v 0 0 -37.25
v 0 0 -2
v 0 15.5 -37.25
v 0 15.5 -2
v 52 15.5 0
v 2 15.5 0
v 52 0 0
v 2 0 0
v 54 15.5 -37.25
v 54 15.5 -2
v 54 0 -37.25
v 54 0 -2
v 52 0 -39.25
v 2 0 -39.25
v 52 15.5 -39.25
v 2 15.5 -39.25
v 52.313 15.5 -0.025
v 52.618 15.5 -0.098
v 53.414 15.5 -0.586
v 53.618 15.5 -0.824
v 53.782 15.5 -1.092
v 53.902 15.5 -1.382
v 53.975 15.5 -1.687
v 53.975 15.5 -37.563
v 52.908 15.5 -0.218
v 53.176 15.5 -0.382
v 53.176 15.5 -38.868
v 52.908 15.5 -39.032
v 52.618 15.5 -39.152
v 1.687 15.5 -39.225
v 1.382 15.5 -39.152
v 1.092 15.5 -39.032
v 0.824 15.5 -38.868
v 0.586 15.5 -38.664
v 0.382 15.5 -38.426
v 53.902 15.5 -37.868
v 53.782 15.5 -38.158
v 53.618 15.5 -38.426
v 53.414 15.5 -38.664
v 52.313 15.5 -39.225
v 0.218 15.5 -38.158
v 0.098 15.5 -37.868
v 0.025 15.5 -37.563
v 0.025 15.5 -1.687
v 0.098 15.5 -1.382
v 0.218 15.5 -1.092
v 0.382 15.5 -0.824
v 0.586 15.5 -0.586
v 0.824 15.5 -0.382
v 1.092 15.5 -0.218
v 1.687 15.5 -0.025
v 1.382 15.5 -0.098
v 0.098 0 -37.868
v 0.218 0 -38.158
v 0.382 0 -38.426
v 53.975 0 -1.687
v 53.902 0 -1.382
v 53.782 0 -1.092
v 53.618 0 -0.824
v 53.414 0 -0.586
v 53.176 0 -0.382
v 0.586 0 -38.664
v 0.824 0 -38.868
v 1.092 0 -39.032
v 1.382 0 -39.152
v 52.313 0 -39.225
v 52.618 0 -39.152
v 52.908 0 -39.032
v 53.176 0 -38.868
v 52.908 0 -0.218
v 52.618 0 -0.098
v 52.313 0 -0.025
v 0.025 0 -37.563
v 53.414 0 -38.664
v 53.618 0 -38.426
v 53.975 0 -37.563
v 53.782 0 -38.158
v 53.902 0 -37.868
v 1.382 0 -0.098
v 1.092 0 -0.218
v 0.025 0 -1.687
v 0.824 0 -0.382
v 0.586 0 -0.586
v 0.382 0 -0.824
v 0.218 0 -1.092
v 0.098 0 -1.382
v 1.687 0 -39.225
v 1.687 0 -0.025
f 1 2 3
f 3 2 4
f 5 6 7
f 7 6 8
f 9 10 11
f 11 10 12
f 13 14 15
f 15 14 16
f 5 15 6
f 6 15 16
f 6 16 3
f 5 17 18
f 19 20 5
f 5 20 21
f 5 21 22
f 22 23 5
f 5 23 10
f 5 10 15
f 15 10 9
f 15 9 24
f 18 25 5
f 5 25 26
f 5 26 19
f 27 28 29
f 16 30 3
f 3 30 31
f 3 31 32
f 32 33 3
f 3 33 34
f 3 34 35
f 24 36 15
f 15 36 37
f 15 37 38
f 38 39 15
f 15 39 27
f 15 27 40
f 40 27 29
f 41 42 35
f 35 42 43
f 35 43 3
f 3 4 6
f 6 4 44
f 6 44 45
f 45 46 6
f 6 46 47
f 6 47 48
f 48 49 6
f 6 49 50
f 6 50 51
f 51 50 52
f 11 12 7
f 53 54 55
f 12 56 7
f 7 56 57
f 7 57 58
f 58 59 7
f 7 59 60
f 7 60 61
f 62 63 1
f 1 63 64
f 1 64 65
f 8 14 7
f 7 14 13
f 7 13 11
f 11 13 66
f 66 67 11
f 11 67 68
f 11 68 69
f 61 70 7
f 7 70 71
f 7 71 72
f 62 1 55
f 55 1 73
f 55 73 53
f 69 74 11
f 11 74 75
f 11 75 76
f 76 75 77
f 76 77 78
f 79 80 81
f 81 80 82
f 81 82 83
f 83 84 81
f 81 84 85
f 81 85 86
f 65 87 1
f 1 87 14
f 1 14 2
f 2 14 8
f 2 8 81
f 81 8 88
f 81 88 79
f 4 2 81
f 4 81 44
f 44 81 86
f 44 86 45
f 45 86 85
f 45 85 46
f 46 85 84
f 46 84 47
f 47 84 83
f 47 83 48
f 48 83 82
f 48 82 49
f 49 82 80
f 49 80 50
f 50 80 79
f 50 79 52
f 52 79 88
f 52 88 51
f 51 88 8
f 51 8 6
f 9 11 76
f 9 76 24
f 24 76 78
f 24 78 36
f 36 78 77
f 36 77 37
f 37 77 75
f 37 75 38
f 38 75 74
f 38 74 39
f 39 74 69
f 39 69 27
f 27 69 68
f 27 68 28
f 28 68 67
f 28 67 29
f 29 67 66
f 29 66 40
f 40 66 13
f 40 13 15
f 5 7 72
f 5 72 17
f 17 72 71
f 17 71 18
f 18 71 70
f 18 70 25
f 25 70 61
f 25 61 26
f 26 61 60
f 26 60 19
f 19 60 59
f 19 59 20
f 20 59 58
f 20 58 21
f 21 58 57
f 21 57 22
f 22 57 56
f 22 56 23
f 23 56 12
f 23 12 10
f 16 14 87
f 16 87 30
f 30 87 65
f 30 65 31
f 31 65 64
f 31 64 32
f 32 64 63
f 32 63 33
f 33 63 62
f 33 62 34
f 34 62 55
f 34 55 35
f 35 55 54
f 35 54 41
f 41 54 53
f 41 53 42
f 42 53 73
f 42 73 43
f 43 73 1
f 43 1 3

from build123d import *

# Parameters (mm, degrees)
SKETCH1_W           = 54
SKETCH1_H           = 39.25
BOSS_EXTRUDE1_DEPTH = 15.5
FILLET1_R           = 2
FILLET2_R           = 2


with BuildPart() as part:
    # Sketch1 → Boss-Extrude1 (new body)
    with BuildSketch(Plane(origin=(0, 0, 0), x_dir=(1, 0, 0), z_dir=(0, 1, 0))):
        with Locations((27, 19.625)):
            Rectangle(SKETCH1_W, SKETCH1_H)
    extrude(amount=BOSS_EXTRUDE1_DEPTH)

    # Fillet1
    fillet1_edges = [part.edges().sort_by_distance(p)[0] for p in [
        (0, 7.75, 0),
    ]]
    fillet(fillet1_edges, radius=FILLET1_R)

    # Fillet2
    fillet2_edges = [part.edges().sort_by_distance(p)[0] for p in [
        (0, 7.75, -39.25),
        (54, 7.75, -39.25),
        (54, 7.75, 0),
    ]]
    fillet(fillet2_edges, radius=FILLET2_R)


solid = part.part
